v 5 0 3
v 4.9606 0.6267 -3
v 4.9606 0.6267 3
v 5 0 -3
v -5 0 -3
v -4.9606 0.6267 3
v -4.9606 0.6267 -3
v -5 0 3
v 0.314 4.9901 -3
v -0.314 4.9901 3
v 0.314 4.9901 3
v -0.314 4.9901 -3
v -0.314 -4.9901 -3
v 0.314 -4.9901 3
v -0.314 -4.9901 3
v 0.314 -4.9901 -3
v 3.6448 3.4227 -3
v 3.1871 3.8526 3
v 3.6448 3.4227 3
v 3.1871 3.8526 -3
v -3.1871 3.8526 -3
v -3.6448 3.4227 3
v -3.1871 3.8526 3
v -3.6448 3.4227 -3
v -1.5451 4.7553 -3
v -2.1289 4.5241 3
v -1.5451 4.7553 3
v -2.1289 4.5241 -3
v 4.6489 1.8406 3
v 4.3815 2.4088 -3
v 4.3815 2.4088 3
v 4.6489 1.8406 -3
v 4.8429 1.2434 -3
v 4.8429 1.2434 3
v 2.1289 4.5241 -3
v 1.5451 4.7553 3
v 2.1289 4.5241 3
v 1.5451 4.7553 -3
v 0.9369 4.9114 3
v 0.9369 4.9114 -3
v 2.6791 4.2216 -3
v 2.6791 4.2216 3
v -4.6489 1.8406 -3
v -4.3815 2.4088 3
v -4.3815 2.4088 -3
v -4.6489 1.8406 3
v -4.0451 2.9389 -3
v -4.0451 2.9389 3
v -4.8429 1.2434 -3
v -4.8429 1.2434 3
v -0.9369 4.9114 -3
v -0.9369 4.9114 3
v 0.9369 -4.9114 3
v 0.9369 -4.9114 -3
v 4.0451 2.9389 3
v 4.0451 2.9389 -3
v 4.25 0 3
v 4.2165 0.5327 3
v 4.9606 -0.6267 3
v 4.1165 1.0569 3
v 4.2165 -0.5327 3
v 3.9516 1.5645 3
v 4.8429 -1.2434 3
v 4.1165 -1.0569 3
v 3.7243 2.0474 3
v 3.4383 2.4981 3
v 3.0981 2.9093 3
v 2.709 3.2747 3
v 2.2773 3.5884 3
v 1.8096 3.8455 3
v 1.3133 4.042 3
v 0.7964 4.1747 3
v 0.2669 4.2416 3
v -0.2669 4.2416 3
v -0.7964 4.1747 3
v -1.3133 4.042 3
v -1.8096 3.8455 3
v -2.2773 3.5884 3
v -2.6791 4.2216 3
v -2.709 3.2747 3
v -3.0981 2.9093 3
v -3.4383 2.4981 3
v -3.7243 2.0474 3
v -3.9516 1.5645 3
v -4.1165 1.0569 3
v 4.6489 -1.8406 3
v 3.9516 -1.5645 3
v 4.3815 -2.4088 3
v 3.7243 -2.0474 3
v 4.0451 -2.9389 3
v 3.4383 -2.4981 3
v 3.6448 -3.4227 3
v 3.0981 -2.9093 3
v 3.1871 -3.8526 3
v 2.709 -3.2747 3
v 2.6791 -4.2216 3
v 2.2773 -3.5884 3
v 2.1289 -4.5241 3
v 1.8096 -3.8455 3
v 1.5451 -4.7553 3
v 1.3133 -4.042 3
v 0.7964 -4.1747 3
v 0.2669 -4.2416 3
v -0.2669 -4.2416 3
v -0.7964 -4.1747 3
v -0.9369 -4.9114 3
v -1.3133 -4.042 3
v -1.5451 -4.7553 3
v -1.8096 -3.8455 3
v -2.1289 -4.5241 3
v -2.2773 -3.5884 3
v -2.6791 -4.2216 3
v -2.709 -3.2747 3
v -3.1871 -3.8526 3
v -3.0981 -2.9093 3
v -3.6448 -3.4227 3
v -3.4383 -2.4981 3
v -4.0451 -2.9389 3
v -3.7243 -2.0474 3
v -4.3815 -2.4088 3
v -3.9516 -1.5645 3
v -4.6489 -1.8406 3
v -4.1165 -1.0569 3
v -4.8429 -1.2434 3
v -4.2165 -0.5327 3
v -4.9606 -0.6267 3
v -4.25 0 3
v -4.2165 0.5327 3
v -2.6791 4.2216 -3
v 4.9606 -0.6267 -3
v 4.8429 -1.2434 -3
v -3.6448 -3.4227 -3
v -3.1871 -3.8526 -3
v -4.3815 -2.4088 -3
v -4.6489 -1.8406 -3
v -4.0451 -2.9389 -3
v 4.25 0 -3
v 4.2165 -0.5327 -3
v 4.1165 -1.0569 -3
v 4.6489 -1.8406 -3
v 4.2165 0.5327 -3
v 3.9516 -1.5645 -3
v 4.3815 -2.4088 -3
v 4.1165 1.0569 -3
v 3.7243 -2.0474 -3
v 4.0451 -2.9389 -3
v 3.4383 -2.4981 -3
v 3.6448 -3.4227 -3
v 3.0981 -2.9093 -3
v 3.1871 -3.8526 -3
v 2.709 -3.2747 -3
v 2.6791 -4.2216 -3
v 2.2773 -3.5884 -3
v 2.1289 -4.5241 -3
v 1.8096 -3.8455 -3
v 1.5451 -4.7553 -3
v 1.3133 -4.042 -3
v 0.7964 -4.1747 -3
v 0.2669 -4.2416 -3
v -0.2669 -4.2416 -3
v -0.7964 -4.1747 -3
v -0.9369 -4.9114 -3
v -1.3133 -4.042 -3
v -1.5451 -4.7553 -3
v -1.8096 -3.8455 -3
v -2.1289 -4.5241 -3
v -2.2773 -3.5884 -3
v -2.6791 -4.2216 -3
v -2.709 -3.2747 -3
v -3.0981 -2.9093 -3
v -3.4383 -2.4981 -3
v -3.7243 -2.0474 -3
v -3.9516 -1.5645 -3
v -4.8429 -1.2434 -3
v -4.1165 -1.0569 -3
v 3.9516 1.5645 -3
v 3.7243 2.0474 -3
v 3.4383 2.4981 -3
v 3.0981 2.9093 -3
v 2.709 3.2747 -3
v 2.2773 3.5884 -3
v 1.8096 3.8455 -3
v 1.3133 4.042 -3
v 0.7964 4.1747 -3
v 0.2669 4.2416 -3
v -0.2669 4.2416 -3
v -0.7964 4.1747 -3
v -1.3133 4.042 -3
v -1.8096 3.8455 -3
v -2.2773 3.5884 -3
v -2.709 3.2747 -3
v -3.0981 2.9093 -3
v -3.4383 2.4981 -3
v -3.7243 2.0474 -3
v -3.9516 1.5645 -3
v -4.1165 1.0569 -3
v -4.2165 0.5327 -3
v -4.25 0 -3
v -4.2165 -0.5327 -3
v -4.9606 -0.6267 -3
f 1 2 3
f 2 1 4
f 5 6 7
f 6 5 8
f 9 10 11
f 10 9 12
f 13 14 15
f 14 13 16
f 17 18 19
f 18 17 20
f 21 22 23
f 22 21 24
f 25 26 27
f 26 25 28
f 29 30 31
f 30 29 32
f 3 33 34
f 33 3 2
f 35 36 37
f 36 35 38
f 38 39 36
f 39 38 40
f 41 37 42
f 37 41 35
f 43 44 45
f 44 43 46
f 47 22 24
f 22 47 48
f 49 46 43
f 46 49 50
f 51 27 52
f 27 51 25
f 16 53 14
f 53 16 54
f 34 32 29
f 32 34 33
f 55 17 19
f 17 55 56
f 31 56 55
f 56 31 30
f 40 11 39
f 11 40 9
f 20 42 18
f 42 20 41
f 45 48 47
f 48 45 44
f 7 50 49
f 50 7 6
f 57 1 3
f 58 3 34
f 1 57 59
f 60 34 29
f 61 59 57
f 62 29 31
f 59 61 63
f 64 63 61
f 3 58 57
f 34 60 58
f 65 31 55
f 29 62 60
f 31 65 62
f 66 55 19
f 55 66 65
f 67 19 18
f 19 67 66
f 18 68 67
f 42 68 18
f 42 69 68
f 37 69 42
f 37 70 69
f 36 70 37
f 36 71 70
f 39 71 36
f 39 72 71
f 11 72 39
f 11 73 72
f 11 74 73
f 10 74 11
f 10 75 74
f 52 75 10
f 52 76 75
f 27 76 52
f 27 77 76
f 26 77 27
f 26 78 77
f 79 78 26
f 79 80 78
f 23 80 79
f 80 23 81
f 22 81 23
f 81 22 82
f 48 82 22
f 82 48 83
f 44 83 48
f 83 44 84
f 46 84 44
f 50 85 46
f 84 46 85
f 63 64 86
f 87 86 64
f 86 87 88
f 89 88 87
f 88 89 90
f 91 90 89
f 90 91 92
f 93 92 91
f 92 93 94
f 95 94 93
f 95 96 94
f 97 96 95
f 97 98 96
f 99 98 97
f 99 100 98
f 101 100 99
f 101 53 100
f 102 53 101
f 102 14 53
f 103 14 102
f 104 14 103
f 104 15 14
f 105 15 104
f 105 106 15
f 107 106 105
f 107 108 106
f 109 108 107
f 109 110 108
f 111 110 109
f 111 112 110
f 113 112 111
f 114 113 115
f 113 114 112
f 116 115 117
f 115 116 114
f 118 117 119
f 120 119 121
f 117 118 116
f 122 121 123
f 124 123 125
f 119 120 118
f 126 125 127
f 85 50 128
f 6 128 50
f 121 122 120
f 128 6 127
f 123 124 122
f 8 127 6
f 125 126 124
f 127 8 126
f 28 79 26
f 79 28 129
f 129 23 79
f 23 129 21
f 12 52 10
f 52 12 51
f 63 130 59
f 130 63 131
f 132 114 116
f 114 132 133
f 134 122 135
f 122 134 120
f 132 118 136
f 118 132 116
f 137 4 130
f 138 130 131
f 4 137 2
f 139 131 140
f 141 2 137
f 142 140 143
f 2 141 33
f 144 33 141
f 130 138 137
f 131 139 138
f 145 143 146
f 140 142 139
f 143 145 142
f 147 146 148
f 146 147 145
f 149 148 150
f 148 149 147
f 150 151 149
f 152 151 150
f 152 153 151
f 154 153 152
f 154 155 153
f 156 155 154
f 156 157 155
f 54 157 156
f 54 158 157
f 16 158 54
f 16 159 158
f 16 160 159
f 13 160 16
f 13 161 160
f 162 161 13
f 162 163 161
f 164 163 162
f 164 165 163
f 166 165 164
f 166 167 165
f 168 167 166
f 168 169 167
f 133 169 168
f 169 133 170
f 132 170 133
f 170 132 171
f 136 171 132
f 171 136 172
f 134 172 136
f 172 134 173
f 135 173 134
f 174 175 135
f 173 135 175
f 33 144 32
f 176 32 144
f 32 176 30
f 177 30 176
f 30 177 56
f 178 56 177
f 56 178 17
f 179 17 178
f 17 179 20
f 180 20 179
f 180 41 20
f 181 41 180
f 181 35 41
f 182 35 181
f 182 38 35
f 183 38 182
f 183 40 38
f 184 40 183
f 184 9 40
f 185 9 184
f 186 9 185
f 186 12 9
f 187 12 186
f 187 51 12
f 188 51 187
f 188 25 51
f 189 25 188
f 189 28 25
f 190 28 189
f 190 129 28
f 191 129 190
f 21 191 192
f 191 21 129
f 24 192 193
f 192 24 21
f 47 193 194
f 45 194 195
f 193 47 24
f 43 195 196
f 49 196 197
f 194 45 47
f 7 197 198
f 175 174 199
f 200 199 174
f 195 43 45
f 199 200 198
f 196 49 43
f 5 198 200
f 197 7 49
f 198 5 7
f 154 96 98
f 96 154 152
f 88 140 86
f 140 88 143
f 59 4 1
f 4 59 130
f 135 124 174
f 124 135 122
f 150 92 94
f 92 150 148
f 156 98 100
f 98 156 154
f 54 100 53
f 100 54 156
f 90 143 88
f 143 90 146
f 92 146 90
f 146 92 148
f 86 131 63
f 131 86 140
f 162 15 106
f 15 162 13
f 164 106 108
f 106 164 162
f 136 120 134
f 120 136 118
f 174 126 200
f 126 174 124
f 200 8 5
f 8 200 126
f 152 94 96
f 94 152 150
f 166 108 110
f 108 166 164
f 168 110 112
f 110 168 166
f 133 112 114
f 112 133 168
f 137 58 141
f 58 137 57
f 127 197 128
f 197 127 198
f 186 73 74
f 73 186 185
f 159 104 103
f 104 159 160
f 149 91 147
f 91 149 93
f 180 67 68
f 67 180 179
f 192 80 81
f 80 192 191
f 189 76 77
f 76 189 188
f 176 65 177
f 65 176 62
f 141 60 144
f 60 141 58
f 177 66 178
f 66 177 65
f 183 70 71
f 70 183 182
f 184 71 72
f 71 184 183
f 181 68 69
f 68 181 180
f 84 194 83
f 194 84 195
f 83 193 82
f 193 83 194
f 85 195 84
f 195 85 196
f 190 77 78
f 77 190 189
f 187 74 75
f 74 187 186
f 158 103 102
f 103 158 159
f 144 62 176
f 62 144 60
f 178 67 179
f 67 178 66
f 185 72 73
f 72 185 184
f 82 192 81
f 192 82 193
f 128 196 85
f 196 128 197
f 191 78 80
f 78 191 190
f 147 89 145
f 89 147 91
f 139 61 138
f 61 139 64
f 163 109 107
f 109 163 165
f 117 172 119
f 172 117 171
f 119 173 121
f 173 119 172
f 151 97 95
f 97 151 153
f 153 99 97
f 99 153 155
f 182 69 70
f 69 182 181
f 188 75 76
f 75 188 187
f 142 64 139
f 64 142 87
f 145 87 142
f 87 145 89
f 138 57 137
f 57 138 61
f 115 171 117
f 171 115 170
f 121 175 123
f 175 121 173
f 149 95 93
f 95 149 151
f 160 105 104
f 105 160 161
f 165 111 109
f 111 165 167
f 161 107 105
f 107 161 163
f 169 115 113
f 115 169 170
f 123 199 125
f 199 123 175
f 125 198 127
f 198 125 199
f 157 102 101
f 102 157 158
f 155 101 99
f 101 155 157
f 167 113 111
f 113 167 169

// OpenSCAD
$fn = 50;


difference() {
	union() {
		translate(v = [0, 0, -3.0000000000]) {
			cylinder(h = 6, r = 5.0000000000);
		}
	}
	union() {
		translate(v = [0, 0, -100.0000000000]) {
			cylinder(h = 200, r = 4.2500000000);
		}
	}
}
